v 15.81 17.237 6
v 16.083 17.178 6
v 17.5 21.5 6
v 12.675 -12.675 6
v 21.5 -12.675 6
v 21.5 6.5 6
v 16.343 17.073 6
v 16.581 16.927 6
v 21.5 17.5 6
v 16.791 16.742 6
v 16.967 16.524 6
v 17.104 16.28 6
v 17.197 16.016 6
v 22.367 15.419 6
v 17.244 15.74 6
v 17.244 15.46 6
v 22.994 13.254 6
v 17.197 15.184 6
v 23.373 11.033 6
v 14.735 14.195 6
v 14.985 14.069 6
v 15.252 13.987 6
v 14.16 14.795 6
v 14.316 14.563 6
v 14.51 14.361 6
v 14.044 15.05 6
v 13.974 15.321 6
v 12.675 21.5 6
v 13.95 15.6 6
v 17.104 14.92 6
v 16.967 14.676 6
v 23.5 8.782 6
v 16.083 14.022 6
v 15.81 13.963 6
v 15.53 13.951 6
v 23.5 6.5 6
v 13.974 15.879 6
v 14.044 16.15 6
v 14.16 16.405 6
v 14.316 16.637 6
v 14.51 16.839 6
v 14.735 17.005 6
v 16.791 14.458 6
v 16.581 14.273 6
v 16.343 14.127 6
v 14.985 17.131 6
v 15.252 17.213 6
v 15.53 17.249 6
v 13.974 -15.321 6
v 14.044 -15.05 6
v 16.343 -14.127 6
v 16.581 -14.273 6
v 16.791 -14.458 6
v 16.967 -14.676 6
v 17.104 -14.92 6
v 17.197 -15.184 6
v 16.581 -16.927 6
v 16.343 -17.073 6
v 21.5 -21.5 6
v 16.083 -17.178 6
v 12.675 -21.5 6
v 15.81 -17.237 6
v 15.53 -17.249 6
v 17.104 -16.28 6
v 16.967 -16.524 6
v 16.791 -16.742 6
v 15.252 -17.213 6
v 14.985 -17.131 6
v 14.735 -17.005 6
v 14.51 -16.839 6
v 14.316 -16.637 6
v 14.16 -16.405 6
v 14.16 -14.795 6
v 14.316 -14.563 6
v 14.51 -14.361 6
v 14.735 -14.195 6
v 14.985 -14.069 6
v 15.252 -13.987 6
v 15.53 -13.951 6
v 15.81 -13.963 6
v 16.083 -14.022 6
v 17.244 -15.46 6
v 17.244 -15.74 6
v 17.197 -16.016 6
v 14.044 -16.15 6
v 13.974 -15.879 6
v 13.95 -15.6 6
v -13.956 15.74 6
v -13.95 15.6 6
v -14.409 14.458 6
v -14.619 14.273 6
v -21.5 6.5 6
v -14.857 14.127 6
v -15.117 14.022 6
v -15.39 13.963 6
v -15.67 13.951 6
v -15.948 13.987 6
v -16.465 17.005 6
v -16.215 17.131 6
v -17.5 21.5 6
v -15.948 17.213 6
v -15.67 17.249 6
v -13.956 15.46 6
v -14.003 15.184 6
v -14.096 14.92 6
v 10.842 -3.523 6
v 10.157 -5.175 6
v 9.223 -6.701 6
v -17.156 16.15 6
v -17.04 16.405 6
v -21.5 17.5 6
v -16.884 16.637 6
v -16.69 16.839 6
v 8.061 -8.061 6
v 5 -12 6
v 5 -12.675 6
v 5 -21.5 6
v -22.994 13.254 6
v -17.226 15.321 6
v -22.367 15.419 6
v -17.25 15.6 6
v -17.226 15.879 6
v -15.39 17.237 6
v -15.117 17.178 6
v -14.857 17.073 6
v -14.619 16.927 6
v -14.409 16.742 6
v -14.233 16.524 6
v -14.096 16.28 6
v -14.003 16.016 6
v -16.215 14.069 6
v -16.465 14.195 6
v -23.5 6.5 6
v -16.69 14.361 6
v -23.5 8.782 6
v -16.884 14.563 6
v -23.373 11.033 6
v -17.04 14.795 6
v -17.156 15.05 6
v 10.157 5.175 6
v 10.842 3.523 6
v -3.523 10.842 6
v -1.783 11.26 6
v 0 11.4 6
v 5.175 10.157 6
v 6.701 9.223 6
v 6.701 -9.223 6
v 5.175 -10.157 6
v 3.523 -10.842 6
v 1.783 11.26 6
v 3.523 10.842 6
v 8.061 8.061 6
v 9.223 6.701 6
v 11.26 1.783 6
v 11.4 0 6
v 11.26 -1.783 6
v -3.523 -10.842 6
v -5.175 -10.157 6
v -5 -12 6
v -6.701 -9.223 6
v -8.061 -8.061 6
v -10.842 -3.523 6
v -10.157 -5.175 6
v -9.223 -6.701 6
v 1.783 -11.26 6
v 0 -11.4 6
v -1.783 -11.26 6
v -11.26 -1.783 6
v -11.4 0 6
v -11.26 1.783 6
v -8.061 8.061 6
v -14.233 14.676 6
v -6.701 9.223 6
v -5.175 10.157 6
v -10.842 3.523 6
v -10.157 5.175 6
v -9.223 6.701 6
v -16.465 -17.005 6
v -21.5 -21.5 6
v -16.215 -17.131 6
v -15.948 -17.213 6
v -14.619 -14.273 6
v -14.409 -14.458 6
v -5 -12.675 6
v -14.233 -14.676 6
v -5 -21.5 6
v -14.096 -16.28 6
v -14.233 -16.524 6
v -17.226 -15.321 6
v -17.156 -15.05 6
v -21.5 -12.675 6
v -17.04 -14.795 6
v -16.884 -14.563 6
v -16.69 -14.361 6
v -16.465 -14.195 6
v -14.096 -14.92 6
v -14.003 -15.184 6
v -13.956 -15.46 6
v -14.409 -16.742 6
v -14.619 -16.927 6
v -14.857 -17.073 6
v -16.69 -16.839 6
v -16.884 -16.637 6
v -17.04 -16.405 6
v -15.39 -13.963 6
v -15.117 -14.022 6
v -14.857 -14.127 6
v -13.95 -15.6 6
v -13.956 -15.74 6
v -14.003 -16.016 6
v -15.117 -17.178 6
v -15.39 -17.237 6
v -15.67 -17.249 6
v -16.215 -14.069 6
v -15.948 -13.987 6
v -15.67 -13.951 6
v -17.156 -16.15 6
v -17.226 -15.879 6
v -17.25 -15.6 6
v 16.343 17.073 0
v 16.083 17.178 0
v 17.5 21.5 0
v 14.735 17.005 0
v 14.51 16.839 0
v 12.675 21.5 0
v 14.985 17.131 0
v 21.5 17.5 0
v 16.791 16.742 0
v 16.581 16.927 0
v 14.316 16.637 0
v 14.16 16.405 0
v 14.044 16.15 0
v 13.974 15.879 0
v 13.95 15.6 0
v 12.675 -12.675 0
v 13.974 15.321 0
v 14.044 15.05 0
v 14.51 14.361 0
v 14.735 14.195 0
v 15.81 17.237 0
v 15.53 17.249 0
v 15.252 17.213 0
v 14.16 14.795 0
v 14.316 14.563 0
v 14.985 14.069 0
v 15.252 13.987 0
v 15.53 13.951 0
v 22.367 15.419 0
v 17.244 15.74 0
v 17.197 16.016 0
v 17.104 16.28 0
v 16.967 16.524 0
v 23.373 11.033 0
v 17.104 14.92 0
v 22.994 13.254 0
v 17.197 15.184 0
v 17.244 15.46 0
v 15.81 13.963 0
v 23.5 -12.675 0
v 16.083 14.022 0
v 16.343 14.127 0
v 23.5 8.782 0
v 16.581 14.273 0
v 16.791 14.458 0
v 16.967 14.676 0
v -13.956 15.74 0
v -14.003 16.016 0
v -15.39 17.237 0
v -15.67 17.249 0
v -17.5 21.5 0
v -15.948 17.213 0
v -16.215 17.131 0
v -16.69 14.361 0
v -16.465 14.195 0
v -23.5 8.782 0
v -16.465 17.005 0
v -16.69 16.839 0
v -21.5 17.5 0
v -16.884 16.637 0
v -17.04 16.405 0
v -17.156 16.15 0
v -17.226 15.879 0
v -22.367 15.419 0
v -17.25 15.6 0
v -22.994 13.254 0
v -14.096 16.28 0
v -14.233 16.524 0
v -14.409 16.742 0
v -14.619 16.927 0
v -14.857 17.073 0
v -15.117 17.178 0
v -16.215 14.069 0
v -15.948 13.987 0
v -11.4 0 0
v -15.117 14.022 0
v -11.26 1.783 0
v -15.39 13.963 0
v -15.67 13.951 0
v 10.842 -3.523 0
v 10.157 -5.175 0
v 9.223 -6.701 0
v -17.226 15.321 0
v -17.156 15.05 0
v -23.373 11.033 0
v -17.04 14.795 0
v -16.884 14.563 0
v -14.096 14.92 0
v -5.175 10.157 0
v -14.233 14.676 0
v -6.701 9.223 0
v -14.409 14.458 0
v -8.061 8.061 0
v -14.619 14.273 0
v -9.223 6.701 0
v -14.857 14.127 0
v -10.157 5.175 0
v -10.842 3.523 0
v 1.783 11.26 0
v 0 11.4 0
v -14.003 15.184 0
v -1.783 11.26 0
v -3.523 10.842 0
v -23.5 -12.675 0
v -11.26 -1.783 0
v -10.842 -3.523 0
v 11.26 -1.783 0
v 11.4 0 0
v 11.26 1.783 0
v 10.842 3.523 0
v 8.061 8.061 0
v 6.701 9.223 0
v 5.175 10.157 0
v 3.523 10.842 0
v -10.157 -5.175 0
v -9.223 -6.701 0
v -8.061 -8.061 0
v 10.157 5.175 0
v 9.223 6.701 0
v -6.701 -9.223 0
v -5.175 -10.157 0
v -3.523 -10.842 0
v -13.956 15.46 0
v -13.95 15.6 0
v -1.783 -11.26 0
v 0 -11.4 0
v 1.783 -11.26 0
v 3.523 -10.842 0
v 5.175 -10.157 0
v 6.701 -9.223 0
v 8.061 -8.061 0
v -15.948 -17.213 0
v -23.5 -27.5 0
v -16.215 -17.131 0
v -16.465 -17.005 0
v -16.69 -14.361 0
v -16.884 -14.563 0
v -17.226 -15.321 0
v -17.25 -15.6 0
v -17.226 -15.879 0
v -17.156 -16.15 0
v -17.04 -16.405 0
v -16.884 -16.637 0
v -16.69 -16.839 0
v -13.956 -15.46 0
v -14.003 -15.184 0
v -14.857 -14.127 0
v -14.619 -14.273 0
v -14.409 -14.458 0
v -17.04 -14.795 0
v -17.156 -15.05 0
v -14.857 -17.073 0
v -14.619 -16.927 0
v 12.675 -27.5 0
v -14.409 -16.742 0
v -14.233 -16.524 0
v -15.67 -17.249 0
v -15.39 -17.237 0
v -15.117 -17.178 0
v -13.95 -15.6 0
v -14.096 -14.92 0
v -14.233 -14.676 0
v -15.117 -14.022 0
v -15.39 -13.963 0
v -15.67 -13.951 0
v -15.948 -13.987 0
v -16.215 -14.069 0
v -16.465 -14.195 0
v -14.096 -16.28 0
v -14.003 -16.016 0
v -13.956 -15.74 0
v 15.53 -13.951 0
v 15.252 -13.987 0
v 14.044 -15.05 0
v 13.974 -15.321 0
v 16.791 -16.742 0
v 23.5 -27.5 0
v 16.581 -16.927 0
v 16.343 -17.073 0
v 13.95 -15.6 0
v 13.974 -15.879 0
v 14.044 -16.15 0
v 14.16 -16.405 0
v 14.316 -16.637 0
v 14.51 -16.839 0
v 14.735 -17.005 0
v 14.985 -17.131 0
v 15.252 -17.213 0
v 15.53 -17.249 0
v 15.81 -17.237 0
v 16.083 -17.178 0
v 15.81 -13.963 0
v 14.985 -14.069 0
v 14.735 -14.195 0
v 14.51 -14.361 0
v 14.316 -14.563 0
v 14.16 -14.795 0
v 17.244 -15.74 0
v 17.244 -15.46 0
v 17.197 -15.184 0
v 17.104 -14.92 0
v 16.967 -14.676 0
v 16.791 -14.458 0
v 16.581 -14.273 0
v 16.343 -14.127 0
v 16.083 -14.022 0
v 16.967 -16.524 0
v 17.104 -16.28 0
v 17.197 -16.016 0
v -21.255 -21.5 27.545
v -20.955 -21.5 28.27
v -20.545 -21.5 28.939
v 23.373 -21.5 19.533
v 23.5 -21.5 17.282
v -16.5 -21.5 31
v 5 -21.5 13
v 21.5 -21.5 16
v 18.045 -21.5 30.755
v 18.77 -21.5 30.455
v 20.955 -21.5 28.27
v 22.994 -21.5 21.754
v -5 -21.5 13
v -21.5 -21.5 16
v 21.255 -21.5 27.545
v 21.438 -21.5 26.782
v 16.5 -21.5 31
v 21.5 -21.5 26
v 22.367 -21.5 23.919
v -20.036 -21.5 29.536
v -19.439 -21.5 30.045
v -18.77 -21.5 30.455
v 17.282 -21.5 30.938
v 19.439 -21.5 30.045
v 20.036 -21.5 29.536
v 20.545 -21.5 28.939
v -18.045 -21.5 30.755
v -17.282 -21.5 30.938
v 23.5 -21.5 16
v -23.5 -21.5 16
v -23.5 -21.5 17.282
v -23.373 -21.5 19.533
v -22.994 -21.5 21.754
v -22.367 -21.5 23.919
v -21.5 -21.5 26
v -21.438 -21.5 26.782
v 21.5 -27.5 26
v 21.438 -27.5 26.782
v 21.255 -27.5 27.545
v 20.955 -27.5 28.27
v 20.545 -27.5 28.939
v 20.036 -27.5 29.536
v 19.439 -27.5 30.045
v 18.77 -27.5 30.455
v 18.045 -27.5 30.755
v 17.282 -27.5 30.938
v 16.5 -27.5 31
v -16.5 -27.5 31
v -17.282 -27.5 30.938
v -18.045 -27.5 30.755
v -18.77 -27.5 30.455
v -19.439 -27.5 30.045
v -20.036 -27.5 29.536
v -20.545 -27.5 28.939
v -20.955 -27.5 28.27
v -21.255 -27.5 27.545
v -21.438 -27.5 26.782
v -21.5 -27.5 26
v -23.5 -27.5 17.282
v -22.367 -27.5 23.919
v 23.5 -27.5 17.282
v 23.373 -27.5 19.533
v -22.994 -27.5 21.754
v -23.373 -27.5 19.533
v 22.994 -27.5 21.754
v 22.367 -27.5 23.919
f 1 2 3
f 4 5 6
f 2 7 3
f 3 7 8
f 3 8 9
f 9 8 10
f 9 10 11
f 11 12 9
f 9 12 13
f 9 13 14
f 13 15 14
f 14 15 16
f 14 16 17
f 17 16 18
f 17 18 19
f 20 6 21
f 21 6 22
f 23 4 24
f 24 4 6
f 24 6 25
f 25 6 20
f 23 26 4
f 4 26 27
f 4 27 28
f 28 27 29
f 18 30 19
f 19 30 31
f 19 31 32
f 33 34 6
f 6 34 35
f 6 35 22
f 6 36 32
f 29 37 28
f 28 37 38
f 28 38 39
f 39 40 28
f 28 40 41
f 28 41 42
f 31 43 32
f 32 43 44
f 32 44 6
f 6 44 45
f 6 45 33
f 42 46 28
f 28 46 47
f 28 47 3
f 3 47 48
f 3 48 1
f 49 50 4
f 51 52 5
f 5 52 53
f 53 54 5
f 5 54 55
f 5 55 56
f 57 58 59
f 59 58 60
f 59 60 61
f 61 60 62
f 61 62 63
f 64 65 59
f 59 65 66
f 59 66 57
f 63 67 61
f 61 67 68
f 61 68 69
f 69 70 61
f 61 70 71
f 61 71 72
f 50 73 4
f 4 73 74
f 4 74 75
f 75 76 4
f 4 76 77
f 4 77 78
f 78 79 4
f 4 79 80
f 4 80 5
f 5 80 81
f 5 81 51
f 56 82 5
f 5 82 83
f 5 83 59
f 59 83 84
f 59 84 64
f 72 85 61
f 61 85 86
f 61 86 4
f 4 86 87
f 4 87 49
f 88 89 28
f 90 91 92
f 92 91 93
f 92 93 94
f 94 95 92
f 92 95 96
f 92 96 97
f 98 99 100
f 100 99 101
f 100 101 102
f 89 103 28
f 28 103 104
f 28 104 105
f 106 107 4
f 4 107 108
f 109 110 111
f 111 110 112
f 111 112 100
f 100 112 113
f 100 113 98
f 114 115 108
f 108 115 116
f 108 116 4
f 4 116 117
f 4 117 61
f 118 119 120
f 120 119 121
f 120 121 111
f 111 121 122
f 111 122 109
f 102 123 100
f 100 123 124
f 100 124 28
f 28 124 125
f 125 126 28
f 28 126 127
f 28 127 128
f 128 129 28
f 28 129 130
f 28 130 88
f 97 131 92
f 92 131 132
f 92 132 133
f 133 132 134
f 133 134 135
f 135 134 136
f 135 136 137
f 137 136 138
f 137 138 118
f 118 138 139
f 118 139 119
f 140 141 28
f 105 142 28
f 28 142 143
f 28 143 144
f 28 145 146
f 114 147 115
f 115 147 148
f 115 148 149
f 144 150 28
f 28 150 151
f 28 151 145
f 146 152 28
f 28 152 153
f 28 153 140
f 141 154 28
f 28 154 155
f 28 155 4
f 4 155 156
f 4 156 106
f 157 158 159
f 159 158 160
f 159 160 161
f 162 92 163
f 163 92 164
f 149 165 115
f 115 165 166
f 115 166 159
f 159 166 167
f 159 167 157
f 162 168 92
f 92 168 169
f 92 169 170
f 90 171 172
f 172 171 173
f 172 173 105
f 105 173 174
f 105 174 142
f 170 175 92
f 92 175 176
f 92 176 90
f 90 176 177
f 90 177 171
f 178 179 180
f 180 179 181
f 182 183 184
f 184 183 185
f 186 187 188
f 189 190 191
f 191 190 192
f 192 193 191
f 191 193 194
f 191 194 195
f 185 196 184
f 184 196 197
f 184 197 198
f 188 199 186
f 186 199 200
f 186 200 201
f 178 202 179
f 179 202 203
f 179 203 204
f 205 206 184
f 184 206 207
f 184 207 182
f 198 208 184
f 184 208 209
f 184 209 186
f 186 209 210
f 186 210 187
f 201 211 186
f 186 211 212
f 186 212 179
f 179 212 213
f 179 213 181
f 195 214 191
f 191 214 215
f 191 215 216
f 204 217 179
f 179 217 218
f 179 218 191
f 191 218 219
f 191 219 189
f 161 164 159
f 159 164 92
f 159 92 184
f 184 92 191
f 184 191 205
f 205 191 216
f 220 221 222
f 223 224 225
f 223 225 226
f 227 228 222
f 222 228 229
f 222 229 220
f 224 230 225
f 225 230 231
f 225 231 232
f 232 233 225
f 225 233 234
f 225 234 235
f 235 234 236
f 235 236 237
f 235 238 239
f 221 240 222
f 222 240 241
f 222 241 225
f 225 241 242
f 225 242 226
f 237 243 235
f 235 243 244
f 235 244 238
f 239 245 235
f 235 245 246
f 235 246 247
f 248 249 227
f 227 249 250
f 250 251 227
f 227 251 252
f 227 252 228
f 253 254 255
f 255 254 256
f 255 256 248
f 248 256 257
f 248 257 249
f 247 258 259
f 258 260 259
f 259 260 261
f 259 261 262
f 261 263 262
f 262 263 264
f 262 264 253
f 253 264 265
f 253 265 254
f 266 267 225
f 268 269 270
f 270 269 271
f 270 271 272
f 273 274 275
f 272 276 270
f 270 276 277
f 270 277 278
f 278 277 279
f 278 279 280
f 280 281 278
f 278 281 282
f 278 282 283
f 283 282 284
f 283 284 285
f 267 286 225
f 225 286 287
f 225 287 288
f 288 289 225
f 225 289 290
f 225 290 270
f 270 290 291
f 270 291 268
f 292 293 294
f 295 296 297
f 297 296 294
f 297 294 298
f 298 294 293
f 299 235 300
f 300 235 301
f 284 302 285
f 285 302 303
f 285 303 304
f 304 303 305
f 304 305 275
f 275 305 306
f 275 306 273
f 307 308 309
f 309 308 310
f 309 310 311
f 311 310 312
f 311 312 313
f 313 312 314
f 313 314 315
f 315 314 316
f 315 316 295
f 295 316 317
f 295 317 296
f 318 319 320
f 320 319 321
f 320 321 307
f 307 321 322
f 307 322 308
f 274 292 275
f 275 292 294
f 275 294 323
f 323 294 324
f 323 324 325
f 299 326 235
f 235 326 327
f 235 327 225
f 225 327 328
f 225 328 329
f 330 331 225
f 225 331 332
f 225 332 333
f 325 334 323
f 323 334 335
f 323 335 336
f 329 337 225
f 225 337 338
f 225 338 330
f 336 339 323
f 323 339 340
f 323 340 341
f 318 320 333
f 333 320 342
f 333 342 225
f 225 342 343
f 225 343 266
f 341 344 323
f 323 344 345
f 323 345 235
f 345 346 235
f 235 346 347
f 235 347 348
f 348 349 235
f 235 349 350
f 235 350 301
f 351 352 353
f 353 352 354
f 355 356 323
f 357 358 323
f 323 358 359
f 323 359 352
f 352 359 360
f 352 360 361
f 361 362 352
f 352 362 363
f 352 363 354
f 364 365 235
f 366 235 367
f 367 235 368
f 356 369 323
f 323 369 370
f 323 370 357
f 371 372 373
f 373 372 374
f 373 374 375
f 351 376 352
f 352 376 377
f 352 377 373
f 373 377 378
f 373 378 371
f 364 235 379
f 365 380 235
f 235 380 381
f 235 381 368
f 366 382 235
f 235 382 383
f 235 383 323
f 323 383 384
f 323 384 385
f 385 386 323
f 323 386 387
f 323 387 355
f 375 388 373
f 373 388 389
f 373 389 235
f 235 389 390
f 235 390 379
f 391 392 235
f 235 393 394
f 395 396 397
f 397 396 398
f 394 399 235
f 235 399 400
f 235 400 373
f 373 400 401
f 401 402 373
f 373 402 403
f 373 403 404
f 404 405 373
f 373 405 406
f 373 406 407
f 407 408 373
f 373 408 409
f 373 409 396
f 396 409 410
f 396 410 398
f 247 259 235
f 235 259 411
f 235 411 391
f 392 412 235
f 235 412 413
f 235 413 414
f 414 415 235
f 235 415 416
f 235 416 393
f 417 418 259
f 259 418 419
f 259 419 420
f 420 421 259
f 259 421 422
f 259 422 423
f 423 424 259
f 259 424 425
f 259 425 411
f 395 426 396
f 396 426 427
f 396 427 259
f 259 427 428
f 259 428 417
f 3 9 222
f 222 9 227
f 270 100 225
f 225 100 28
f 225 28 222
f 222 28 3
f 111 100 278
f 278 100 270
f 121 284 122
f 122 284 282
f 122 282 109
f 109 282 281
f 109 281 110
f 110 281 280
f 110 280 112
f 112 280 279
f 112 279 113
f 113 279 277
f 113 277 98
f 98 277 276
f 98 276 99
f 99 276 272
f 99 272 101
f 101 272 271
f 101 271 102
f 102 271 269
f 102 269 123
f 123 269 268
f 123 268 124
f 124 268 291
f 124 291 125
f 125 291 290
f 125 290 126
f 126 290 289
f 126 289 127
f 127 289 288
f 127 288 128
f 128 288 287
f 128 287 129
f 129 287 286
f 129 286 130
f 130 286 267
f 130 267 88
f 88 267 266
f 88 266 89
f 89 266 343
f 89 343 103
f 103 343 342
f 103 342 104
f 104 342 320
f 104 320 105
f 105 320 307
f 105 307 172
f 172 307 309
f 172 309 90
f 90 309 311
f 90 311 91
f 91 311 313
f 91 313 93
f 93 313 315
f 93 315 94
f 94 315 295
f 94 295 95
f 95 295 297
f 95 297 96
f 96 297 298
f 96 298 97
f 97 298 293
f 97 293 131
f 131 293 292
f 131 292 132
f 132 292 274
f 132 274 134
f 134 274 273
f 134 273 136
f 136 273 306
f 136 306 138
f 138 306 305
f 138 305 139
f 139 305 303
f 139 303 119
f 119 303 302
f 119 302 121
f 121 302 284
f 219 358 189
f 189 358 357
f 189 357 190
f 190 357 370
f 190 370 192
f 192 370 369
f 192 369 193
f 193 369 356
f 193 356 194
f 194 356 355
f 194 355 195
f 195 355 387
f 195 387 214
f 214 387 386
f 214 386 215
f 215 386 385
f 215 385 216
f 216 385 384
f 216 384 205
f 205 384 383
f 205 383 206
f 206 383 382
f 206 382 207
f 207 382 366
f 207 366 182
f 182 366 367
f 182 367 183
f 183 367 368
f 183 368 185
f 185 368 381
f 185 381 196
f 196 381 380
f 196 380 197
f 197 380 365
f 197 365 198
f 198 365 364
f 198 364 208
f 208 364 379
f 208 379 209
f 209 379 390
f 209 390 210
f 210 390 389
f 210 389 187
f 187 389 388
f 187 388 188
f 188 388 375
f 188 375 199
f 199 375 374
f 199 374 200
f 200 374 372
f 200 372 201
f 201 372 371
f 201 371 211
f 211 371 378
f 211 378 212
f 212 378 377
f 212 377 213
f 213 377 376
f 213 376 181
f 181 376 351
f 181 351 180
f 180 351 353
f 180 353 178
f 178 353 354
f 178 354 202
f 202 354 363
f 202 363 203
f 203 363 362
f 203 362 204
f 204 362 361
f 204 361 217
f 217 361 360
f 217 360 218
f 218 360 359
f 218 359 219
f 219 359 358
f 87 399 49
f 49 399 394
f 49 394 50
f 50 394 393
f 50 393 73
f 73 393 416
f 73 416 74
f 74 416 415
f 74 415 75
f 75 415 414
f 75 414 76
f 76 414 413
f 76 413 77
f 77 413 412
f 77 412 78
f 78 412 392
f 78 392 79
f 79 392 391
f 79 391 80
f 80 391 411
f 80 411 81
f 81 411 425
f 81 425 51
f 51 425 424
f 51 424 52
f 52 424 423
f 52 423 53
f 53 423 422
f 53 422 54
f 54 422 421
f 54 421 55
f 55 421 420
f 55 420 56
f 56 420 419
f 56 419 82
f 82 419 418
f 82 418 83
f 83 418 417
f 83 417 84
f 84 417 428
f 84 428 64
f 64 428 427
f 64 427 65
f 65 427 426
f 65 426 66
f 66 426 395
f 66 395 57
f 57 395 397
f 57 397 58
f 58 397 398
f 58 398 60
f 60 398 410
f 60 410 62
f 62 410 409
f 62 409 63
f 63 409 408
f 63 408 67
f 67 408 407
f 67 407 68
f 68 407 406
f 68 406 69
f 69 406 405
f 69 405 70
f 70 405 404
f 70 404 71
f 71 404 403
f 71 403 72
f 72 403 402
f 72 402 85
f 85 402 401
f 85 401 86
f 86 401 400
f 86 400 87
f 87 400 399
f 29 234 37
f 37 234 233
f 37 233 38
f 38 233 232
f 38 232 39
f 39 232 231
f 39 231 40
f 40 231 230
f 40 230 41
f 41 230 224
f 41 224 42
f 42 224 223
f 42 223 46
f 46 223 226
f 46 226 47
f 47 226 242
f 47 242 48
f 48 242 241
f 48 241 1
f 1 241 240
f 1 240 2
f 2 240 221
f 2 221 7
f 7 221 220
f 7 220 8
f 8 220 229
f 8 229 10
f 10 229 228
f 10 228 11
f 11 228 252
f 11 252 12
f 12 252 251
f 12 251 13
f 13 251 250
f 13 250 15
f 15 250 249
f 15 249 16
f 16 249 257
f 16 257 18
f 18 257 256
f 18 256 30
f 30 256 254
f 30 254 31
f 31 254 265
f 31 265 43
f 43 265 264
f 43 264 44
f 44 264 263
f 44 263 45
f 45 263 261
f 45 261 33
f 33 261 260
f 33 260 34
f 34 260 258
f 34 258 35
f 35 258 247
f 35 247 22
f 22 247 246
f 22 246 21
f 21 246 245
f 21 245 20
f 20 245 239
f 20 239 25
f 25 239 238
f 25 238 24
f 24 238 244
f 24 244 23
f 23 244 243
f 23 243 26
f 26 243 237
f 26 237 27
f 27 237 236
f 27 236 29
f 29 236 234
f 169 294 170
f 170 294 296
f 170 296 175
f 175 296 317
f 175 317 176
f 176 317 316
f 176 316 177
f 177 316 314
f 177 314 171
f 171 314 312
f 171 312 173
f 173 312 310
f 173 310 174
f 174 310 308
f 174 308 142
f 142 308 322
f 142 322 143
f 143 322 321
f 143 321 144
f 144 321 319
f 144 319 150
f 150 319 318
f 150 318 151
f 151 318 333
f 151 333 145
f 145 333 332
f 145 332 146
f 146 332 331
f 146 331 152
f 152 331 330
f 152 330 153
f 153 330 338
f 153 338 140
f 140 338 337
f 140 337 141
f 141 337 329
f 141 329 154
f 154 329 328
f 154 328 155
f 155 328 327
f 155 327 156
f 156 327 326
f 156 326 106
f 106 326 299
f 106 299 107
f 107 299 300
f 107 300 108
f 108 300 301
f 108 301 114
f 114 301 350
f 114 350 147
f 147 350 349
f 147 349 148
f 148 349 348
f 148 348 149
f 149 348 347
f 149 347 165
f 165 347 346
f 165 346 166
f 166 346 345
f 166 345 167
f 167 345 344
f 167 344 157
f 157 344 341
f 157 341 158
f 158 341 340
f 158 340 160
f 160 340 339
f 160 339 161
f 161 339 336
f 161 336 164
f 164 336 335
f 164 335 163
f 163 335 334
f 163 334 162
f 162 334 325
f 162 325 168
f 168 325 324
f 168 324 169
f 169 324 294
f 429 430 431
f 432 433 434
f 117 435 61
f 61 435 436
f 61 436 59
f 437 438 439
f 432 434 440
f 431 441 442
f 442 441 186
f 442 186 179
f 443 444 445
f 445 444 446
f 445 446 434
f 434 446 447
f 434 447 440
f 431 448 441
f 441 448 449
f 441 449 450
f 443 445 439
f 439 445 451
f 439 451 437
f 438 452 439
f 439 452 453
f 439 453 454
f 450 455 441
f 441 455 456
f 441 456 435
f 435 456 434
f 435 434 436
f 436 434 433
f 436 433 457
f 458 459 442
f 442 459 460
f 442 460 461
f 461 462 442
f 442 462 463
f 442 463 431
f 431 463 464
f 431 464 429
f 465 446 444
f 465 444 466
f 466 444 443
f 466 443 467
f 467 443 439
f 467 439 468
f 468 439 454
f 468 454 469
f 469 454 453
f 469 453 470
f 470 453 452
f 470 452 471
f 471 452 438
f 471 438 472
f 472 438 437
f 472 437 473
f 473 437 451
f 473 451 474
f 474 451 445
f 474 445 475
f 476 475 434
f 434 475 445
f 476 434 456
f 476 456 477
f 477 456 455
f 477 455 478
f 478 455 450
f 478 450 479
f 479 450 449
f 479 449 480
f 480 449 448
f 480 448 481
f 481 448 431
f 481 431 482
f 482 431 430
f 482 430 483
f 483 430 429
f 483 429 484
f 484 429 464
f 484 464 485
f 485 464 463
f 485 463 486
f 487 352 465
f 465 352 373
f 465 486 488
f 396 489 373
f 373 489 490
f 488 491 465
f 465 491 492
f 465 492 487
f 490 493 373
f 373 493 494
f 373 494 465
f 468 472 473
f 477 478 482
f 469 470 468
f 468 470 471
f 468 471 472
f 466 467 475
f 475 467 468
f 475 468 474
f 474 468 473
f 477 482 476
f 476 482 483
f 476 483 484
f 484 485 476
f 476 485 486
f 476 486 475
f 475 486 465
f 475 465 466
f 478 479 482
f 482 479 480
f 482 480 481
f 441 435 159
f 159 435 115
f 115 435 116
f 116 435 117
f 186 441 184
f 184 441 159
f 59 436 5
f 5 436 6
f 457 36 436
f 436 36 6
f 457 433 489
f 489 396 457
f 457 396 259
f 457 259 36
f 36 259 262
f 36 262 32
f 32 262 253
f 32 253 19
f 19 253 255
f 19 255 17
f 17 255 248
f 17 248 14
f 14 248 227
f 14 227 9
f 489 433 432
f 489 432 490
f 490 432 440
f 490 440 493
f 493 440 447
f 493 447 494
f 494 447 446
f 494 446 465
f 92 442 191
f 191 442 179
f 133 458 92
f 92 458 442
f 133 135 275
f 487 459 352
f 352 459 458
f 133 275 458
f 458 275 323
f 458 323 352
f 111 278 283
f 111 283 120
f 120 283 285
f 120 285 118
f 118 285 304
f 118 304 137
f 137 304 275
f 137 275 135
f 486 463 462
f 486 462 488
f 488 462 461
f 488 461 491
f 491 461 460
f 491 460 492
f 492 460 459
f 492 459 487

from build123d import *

# Parameters (mm, degrees)
CROQUIS1_R               = 1.65
CROQUIS1_R_2             = 11.4
SALIENTE_EXTRUIR1_DEPTH  = 6
SALIENTE_EXTRUIR2_DEPTH  = 6
NERVIO1_REACH            = 48.685
CROQUIS3_WALL_W          = 107.170654524
CROQUIS3_WALL_H          = 10
SALIENTE_EXTRUIR3_DEPTH  = 2
REDONDEO1_R              = 20
REDONDEO1_OF_SIMETR_A1_R = 20


with BuildPart() as part:
    # Croquis1 → Saliente-Extruir1 (new body)
    with BuildSketch(Plane.XY):
        Polygon((-21.5, -21.5), (21.5, -21.5), (21.5, 17.5), (17.5, 21.5), (-17.5, 21.5), (-21.5, 17.5), align=None)
        with Locations((-15.6, 15.6)):
            Circle(CROQUIS1_R, mode=Mode.SUBTRACT)
        with Locations((-15.6, -15.6)):
            Circle(CROQUIS1_R, mode=Mode.SUBTRACT)
        with Locations(Location((15.6, -15.6, 0), (0, 0, 180))):
            Circle(CROQUIS1_R, mode=Mode.SUBTRACT)
        with Locations(Location((15.6, 15.6, 0), (0, 0, 180))):
            Circle(CROQUIS1_R, mode=Mode.SUBTRACT)
        Circle(CROQUIS1_R_2, mode=Mode.SUBTRACT)
    extrude(amount=SALIENTE_EXTRUIR1_DEPTH)

    # Croquis2 → Saliente-Extruir2 (add)
    with BuildSketch(Plane.XZ.offset(21.5)):
        with BuildLine():
            Line((-21.5, 0), (21.5, 0))
            Line((21.5, 0), (21.5, 26))
            ThreePointArc((21.5, 26), (20.035533906, 29.535533906), (16.5, 31))
            Line((16.5, 31), (-16.5, 31))
            ThreePointArc((-16.5, 31), (-20.035533906, 29.535533906), (-21.5, 26))
            Line((-21.5, 26), (-21.5, 0))
        make_face()
    extrude(amount=SALIENTE_EXTRUIR2_DEPTH)

    # Croquis3 wall → Nervio1 (add, up to next)
    with BuildSketch(Plane(origin=(0, -16.75, 9.5), x_dir=(0, -0.805055837353, 0.59319903805), z_dir=(0, -0.59319903805, -0.805055837353)), mode=Mode.PRIVATE) as nervio1_sk1:
        Rectangle(CROQUIS3_WALL_W, CROQUIS3_WALL_H)
    nervio1_tool1 = extrude(nervio1_sk1.sketch, amount=NERVIO1_REACH, mode=Mode.PRIVATE) - part.part
    add(nervio1_tool1.solids().sort_by_distance((0, -16.75, 9.5))[0])

    # Croquis4 → Saliente-Extruir3 (add)
    with BuildSketch(Plane(origin=(21.5, 0, 0), x_dir=(0, 0, -1), z_dir=(1, 0, 0))):
        Polygon((-6, -21.5), (-6, 6.5), (-16, -21.5), align=None)
        Polygon((-26, -27.5), (0, -27.5), (0, 17.5), (-6, 17.5), (-6, -21.5), (-26, -21.5), align=None)
    saliente_extruir3 = extrude(amount=SALIENTE_EXTRUIR3_DEPTH)

    # Redondeo1
    # the kernel refuses this fillet: 20 mm, written as the material it takes off along each edge
    with BuildSketch(Plane(origin=(23.5, 17.5, -21.794494718), x_dir=(0, -1, 0), z_dir=(0, 0, 1)), Plane(origin=(23.5, 0.294494718, 26), x_dir=(0, 0, -1), z_dir=(0, -1, 0))) as redondeo1_piece_1:
        with BuildLine():
            CenterArc((8.717797887, -20), REDONDEO1_R, 90, 25.841932763)
            Line((0, -2), (-0.174355958, -1.64))
            ThreePointArc((-0.174355958, -1.64), (-0.4, -1), (-0.4, 0))
            Line((-0.4, 0), (0, 0.4))
            Line((0, 0.4), (8.717797887, 0.4))
            Line((8.717797887, 0.4), (8.717797887, 0))
        make_face()
    extrude(amount=49.588989435, mode=Mode.SUBTRACT)

    # Simetría1: Saliente-Extruir3 across plane
    add(saliente_extruir3.mirror(Plane(origin=(0, 0, 0), x_dir=(0, 0, 1), z_dir=(1, 0, 0))))

    # Redondeo1 of Simetría1
    # the kernel refuses this fillet: 20 mm, written as the material it takes off along each edge
    with BuildSketch(Plane(origin=(-23.5, 17.5, -21.794494718), x_dir=(0, -1, 0), z_dir=(0, 0, 1))) as redondeo1_of_simetr_a1_piece_1:
        with BuildLine():
            CenterArc((8.717797887, 20), REDONDEO1_OF_SIMETR_A1_R, 244.158067237, 25.841932763)
            Line((0, 2), (-0.174355958, 1.64))
            ThreePointArc((-0.174355958, 1.64), (-0.4, 1), (-0.4, 0))
            Line((-0.4, 0), (0, -0.4))
            Line((0, -0.4), (8.717797887, -0.4))
            Line((8.717797887, -0.4), (8.717797887, 0))
        make_face()
    extrude(amount=49.588989435, mode=Mode.SUBTRACT)
    with BuildSketch(Plane(origin=(-23.5, 0.294494718, 26), x_dir=(1, 0, 0), z_dir=(0, -1, 0))) as redondeo1_of_simetr_a1_piece_2:
        with BuildLine():
            CenterArc((20, -8.717797887), REDONDEO1_OF_SIMETR_A1_R, 154.158067237, 25.841932763)
            Line((0, -8.717797887), (-0.4, -8.717797887))
            Line((-0.4, -8.717797887), (-0.4, 0))
            Line((-0.4, 0), (0, 0.4))
            ThreePointArc((0, 0.4), (1, 0.4), (1.64, 0.174355958))
            Line((1.64, 0.174355958), (2, 0))
        make_face()
    extrude(amount=49.588989435, mode=Mode.SUBTRACT)


solid = part.part
